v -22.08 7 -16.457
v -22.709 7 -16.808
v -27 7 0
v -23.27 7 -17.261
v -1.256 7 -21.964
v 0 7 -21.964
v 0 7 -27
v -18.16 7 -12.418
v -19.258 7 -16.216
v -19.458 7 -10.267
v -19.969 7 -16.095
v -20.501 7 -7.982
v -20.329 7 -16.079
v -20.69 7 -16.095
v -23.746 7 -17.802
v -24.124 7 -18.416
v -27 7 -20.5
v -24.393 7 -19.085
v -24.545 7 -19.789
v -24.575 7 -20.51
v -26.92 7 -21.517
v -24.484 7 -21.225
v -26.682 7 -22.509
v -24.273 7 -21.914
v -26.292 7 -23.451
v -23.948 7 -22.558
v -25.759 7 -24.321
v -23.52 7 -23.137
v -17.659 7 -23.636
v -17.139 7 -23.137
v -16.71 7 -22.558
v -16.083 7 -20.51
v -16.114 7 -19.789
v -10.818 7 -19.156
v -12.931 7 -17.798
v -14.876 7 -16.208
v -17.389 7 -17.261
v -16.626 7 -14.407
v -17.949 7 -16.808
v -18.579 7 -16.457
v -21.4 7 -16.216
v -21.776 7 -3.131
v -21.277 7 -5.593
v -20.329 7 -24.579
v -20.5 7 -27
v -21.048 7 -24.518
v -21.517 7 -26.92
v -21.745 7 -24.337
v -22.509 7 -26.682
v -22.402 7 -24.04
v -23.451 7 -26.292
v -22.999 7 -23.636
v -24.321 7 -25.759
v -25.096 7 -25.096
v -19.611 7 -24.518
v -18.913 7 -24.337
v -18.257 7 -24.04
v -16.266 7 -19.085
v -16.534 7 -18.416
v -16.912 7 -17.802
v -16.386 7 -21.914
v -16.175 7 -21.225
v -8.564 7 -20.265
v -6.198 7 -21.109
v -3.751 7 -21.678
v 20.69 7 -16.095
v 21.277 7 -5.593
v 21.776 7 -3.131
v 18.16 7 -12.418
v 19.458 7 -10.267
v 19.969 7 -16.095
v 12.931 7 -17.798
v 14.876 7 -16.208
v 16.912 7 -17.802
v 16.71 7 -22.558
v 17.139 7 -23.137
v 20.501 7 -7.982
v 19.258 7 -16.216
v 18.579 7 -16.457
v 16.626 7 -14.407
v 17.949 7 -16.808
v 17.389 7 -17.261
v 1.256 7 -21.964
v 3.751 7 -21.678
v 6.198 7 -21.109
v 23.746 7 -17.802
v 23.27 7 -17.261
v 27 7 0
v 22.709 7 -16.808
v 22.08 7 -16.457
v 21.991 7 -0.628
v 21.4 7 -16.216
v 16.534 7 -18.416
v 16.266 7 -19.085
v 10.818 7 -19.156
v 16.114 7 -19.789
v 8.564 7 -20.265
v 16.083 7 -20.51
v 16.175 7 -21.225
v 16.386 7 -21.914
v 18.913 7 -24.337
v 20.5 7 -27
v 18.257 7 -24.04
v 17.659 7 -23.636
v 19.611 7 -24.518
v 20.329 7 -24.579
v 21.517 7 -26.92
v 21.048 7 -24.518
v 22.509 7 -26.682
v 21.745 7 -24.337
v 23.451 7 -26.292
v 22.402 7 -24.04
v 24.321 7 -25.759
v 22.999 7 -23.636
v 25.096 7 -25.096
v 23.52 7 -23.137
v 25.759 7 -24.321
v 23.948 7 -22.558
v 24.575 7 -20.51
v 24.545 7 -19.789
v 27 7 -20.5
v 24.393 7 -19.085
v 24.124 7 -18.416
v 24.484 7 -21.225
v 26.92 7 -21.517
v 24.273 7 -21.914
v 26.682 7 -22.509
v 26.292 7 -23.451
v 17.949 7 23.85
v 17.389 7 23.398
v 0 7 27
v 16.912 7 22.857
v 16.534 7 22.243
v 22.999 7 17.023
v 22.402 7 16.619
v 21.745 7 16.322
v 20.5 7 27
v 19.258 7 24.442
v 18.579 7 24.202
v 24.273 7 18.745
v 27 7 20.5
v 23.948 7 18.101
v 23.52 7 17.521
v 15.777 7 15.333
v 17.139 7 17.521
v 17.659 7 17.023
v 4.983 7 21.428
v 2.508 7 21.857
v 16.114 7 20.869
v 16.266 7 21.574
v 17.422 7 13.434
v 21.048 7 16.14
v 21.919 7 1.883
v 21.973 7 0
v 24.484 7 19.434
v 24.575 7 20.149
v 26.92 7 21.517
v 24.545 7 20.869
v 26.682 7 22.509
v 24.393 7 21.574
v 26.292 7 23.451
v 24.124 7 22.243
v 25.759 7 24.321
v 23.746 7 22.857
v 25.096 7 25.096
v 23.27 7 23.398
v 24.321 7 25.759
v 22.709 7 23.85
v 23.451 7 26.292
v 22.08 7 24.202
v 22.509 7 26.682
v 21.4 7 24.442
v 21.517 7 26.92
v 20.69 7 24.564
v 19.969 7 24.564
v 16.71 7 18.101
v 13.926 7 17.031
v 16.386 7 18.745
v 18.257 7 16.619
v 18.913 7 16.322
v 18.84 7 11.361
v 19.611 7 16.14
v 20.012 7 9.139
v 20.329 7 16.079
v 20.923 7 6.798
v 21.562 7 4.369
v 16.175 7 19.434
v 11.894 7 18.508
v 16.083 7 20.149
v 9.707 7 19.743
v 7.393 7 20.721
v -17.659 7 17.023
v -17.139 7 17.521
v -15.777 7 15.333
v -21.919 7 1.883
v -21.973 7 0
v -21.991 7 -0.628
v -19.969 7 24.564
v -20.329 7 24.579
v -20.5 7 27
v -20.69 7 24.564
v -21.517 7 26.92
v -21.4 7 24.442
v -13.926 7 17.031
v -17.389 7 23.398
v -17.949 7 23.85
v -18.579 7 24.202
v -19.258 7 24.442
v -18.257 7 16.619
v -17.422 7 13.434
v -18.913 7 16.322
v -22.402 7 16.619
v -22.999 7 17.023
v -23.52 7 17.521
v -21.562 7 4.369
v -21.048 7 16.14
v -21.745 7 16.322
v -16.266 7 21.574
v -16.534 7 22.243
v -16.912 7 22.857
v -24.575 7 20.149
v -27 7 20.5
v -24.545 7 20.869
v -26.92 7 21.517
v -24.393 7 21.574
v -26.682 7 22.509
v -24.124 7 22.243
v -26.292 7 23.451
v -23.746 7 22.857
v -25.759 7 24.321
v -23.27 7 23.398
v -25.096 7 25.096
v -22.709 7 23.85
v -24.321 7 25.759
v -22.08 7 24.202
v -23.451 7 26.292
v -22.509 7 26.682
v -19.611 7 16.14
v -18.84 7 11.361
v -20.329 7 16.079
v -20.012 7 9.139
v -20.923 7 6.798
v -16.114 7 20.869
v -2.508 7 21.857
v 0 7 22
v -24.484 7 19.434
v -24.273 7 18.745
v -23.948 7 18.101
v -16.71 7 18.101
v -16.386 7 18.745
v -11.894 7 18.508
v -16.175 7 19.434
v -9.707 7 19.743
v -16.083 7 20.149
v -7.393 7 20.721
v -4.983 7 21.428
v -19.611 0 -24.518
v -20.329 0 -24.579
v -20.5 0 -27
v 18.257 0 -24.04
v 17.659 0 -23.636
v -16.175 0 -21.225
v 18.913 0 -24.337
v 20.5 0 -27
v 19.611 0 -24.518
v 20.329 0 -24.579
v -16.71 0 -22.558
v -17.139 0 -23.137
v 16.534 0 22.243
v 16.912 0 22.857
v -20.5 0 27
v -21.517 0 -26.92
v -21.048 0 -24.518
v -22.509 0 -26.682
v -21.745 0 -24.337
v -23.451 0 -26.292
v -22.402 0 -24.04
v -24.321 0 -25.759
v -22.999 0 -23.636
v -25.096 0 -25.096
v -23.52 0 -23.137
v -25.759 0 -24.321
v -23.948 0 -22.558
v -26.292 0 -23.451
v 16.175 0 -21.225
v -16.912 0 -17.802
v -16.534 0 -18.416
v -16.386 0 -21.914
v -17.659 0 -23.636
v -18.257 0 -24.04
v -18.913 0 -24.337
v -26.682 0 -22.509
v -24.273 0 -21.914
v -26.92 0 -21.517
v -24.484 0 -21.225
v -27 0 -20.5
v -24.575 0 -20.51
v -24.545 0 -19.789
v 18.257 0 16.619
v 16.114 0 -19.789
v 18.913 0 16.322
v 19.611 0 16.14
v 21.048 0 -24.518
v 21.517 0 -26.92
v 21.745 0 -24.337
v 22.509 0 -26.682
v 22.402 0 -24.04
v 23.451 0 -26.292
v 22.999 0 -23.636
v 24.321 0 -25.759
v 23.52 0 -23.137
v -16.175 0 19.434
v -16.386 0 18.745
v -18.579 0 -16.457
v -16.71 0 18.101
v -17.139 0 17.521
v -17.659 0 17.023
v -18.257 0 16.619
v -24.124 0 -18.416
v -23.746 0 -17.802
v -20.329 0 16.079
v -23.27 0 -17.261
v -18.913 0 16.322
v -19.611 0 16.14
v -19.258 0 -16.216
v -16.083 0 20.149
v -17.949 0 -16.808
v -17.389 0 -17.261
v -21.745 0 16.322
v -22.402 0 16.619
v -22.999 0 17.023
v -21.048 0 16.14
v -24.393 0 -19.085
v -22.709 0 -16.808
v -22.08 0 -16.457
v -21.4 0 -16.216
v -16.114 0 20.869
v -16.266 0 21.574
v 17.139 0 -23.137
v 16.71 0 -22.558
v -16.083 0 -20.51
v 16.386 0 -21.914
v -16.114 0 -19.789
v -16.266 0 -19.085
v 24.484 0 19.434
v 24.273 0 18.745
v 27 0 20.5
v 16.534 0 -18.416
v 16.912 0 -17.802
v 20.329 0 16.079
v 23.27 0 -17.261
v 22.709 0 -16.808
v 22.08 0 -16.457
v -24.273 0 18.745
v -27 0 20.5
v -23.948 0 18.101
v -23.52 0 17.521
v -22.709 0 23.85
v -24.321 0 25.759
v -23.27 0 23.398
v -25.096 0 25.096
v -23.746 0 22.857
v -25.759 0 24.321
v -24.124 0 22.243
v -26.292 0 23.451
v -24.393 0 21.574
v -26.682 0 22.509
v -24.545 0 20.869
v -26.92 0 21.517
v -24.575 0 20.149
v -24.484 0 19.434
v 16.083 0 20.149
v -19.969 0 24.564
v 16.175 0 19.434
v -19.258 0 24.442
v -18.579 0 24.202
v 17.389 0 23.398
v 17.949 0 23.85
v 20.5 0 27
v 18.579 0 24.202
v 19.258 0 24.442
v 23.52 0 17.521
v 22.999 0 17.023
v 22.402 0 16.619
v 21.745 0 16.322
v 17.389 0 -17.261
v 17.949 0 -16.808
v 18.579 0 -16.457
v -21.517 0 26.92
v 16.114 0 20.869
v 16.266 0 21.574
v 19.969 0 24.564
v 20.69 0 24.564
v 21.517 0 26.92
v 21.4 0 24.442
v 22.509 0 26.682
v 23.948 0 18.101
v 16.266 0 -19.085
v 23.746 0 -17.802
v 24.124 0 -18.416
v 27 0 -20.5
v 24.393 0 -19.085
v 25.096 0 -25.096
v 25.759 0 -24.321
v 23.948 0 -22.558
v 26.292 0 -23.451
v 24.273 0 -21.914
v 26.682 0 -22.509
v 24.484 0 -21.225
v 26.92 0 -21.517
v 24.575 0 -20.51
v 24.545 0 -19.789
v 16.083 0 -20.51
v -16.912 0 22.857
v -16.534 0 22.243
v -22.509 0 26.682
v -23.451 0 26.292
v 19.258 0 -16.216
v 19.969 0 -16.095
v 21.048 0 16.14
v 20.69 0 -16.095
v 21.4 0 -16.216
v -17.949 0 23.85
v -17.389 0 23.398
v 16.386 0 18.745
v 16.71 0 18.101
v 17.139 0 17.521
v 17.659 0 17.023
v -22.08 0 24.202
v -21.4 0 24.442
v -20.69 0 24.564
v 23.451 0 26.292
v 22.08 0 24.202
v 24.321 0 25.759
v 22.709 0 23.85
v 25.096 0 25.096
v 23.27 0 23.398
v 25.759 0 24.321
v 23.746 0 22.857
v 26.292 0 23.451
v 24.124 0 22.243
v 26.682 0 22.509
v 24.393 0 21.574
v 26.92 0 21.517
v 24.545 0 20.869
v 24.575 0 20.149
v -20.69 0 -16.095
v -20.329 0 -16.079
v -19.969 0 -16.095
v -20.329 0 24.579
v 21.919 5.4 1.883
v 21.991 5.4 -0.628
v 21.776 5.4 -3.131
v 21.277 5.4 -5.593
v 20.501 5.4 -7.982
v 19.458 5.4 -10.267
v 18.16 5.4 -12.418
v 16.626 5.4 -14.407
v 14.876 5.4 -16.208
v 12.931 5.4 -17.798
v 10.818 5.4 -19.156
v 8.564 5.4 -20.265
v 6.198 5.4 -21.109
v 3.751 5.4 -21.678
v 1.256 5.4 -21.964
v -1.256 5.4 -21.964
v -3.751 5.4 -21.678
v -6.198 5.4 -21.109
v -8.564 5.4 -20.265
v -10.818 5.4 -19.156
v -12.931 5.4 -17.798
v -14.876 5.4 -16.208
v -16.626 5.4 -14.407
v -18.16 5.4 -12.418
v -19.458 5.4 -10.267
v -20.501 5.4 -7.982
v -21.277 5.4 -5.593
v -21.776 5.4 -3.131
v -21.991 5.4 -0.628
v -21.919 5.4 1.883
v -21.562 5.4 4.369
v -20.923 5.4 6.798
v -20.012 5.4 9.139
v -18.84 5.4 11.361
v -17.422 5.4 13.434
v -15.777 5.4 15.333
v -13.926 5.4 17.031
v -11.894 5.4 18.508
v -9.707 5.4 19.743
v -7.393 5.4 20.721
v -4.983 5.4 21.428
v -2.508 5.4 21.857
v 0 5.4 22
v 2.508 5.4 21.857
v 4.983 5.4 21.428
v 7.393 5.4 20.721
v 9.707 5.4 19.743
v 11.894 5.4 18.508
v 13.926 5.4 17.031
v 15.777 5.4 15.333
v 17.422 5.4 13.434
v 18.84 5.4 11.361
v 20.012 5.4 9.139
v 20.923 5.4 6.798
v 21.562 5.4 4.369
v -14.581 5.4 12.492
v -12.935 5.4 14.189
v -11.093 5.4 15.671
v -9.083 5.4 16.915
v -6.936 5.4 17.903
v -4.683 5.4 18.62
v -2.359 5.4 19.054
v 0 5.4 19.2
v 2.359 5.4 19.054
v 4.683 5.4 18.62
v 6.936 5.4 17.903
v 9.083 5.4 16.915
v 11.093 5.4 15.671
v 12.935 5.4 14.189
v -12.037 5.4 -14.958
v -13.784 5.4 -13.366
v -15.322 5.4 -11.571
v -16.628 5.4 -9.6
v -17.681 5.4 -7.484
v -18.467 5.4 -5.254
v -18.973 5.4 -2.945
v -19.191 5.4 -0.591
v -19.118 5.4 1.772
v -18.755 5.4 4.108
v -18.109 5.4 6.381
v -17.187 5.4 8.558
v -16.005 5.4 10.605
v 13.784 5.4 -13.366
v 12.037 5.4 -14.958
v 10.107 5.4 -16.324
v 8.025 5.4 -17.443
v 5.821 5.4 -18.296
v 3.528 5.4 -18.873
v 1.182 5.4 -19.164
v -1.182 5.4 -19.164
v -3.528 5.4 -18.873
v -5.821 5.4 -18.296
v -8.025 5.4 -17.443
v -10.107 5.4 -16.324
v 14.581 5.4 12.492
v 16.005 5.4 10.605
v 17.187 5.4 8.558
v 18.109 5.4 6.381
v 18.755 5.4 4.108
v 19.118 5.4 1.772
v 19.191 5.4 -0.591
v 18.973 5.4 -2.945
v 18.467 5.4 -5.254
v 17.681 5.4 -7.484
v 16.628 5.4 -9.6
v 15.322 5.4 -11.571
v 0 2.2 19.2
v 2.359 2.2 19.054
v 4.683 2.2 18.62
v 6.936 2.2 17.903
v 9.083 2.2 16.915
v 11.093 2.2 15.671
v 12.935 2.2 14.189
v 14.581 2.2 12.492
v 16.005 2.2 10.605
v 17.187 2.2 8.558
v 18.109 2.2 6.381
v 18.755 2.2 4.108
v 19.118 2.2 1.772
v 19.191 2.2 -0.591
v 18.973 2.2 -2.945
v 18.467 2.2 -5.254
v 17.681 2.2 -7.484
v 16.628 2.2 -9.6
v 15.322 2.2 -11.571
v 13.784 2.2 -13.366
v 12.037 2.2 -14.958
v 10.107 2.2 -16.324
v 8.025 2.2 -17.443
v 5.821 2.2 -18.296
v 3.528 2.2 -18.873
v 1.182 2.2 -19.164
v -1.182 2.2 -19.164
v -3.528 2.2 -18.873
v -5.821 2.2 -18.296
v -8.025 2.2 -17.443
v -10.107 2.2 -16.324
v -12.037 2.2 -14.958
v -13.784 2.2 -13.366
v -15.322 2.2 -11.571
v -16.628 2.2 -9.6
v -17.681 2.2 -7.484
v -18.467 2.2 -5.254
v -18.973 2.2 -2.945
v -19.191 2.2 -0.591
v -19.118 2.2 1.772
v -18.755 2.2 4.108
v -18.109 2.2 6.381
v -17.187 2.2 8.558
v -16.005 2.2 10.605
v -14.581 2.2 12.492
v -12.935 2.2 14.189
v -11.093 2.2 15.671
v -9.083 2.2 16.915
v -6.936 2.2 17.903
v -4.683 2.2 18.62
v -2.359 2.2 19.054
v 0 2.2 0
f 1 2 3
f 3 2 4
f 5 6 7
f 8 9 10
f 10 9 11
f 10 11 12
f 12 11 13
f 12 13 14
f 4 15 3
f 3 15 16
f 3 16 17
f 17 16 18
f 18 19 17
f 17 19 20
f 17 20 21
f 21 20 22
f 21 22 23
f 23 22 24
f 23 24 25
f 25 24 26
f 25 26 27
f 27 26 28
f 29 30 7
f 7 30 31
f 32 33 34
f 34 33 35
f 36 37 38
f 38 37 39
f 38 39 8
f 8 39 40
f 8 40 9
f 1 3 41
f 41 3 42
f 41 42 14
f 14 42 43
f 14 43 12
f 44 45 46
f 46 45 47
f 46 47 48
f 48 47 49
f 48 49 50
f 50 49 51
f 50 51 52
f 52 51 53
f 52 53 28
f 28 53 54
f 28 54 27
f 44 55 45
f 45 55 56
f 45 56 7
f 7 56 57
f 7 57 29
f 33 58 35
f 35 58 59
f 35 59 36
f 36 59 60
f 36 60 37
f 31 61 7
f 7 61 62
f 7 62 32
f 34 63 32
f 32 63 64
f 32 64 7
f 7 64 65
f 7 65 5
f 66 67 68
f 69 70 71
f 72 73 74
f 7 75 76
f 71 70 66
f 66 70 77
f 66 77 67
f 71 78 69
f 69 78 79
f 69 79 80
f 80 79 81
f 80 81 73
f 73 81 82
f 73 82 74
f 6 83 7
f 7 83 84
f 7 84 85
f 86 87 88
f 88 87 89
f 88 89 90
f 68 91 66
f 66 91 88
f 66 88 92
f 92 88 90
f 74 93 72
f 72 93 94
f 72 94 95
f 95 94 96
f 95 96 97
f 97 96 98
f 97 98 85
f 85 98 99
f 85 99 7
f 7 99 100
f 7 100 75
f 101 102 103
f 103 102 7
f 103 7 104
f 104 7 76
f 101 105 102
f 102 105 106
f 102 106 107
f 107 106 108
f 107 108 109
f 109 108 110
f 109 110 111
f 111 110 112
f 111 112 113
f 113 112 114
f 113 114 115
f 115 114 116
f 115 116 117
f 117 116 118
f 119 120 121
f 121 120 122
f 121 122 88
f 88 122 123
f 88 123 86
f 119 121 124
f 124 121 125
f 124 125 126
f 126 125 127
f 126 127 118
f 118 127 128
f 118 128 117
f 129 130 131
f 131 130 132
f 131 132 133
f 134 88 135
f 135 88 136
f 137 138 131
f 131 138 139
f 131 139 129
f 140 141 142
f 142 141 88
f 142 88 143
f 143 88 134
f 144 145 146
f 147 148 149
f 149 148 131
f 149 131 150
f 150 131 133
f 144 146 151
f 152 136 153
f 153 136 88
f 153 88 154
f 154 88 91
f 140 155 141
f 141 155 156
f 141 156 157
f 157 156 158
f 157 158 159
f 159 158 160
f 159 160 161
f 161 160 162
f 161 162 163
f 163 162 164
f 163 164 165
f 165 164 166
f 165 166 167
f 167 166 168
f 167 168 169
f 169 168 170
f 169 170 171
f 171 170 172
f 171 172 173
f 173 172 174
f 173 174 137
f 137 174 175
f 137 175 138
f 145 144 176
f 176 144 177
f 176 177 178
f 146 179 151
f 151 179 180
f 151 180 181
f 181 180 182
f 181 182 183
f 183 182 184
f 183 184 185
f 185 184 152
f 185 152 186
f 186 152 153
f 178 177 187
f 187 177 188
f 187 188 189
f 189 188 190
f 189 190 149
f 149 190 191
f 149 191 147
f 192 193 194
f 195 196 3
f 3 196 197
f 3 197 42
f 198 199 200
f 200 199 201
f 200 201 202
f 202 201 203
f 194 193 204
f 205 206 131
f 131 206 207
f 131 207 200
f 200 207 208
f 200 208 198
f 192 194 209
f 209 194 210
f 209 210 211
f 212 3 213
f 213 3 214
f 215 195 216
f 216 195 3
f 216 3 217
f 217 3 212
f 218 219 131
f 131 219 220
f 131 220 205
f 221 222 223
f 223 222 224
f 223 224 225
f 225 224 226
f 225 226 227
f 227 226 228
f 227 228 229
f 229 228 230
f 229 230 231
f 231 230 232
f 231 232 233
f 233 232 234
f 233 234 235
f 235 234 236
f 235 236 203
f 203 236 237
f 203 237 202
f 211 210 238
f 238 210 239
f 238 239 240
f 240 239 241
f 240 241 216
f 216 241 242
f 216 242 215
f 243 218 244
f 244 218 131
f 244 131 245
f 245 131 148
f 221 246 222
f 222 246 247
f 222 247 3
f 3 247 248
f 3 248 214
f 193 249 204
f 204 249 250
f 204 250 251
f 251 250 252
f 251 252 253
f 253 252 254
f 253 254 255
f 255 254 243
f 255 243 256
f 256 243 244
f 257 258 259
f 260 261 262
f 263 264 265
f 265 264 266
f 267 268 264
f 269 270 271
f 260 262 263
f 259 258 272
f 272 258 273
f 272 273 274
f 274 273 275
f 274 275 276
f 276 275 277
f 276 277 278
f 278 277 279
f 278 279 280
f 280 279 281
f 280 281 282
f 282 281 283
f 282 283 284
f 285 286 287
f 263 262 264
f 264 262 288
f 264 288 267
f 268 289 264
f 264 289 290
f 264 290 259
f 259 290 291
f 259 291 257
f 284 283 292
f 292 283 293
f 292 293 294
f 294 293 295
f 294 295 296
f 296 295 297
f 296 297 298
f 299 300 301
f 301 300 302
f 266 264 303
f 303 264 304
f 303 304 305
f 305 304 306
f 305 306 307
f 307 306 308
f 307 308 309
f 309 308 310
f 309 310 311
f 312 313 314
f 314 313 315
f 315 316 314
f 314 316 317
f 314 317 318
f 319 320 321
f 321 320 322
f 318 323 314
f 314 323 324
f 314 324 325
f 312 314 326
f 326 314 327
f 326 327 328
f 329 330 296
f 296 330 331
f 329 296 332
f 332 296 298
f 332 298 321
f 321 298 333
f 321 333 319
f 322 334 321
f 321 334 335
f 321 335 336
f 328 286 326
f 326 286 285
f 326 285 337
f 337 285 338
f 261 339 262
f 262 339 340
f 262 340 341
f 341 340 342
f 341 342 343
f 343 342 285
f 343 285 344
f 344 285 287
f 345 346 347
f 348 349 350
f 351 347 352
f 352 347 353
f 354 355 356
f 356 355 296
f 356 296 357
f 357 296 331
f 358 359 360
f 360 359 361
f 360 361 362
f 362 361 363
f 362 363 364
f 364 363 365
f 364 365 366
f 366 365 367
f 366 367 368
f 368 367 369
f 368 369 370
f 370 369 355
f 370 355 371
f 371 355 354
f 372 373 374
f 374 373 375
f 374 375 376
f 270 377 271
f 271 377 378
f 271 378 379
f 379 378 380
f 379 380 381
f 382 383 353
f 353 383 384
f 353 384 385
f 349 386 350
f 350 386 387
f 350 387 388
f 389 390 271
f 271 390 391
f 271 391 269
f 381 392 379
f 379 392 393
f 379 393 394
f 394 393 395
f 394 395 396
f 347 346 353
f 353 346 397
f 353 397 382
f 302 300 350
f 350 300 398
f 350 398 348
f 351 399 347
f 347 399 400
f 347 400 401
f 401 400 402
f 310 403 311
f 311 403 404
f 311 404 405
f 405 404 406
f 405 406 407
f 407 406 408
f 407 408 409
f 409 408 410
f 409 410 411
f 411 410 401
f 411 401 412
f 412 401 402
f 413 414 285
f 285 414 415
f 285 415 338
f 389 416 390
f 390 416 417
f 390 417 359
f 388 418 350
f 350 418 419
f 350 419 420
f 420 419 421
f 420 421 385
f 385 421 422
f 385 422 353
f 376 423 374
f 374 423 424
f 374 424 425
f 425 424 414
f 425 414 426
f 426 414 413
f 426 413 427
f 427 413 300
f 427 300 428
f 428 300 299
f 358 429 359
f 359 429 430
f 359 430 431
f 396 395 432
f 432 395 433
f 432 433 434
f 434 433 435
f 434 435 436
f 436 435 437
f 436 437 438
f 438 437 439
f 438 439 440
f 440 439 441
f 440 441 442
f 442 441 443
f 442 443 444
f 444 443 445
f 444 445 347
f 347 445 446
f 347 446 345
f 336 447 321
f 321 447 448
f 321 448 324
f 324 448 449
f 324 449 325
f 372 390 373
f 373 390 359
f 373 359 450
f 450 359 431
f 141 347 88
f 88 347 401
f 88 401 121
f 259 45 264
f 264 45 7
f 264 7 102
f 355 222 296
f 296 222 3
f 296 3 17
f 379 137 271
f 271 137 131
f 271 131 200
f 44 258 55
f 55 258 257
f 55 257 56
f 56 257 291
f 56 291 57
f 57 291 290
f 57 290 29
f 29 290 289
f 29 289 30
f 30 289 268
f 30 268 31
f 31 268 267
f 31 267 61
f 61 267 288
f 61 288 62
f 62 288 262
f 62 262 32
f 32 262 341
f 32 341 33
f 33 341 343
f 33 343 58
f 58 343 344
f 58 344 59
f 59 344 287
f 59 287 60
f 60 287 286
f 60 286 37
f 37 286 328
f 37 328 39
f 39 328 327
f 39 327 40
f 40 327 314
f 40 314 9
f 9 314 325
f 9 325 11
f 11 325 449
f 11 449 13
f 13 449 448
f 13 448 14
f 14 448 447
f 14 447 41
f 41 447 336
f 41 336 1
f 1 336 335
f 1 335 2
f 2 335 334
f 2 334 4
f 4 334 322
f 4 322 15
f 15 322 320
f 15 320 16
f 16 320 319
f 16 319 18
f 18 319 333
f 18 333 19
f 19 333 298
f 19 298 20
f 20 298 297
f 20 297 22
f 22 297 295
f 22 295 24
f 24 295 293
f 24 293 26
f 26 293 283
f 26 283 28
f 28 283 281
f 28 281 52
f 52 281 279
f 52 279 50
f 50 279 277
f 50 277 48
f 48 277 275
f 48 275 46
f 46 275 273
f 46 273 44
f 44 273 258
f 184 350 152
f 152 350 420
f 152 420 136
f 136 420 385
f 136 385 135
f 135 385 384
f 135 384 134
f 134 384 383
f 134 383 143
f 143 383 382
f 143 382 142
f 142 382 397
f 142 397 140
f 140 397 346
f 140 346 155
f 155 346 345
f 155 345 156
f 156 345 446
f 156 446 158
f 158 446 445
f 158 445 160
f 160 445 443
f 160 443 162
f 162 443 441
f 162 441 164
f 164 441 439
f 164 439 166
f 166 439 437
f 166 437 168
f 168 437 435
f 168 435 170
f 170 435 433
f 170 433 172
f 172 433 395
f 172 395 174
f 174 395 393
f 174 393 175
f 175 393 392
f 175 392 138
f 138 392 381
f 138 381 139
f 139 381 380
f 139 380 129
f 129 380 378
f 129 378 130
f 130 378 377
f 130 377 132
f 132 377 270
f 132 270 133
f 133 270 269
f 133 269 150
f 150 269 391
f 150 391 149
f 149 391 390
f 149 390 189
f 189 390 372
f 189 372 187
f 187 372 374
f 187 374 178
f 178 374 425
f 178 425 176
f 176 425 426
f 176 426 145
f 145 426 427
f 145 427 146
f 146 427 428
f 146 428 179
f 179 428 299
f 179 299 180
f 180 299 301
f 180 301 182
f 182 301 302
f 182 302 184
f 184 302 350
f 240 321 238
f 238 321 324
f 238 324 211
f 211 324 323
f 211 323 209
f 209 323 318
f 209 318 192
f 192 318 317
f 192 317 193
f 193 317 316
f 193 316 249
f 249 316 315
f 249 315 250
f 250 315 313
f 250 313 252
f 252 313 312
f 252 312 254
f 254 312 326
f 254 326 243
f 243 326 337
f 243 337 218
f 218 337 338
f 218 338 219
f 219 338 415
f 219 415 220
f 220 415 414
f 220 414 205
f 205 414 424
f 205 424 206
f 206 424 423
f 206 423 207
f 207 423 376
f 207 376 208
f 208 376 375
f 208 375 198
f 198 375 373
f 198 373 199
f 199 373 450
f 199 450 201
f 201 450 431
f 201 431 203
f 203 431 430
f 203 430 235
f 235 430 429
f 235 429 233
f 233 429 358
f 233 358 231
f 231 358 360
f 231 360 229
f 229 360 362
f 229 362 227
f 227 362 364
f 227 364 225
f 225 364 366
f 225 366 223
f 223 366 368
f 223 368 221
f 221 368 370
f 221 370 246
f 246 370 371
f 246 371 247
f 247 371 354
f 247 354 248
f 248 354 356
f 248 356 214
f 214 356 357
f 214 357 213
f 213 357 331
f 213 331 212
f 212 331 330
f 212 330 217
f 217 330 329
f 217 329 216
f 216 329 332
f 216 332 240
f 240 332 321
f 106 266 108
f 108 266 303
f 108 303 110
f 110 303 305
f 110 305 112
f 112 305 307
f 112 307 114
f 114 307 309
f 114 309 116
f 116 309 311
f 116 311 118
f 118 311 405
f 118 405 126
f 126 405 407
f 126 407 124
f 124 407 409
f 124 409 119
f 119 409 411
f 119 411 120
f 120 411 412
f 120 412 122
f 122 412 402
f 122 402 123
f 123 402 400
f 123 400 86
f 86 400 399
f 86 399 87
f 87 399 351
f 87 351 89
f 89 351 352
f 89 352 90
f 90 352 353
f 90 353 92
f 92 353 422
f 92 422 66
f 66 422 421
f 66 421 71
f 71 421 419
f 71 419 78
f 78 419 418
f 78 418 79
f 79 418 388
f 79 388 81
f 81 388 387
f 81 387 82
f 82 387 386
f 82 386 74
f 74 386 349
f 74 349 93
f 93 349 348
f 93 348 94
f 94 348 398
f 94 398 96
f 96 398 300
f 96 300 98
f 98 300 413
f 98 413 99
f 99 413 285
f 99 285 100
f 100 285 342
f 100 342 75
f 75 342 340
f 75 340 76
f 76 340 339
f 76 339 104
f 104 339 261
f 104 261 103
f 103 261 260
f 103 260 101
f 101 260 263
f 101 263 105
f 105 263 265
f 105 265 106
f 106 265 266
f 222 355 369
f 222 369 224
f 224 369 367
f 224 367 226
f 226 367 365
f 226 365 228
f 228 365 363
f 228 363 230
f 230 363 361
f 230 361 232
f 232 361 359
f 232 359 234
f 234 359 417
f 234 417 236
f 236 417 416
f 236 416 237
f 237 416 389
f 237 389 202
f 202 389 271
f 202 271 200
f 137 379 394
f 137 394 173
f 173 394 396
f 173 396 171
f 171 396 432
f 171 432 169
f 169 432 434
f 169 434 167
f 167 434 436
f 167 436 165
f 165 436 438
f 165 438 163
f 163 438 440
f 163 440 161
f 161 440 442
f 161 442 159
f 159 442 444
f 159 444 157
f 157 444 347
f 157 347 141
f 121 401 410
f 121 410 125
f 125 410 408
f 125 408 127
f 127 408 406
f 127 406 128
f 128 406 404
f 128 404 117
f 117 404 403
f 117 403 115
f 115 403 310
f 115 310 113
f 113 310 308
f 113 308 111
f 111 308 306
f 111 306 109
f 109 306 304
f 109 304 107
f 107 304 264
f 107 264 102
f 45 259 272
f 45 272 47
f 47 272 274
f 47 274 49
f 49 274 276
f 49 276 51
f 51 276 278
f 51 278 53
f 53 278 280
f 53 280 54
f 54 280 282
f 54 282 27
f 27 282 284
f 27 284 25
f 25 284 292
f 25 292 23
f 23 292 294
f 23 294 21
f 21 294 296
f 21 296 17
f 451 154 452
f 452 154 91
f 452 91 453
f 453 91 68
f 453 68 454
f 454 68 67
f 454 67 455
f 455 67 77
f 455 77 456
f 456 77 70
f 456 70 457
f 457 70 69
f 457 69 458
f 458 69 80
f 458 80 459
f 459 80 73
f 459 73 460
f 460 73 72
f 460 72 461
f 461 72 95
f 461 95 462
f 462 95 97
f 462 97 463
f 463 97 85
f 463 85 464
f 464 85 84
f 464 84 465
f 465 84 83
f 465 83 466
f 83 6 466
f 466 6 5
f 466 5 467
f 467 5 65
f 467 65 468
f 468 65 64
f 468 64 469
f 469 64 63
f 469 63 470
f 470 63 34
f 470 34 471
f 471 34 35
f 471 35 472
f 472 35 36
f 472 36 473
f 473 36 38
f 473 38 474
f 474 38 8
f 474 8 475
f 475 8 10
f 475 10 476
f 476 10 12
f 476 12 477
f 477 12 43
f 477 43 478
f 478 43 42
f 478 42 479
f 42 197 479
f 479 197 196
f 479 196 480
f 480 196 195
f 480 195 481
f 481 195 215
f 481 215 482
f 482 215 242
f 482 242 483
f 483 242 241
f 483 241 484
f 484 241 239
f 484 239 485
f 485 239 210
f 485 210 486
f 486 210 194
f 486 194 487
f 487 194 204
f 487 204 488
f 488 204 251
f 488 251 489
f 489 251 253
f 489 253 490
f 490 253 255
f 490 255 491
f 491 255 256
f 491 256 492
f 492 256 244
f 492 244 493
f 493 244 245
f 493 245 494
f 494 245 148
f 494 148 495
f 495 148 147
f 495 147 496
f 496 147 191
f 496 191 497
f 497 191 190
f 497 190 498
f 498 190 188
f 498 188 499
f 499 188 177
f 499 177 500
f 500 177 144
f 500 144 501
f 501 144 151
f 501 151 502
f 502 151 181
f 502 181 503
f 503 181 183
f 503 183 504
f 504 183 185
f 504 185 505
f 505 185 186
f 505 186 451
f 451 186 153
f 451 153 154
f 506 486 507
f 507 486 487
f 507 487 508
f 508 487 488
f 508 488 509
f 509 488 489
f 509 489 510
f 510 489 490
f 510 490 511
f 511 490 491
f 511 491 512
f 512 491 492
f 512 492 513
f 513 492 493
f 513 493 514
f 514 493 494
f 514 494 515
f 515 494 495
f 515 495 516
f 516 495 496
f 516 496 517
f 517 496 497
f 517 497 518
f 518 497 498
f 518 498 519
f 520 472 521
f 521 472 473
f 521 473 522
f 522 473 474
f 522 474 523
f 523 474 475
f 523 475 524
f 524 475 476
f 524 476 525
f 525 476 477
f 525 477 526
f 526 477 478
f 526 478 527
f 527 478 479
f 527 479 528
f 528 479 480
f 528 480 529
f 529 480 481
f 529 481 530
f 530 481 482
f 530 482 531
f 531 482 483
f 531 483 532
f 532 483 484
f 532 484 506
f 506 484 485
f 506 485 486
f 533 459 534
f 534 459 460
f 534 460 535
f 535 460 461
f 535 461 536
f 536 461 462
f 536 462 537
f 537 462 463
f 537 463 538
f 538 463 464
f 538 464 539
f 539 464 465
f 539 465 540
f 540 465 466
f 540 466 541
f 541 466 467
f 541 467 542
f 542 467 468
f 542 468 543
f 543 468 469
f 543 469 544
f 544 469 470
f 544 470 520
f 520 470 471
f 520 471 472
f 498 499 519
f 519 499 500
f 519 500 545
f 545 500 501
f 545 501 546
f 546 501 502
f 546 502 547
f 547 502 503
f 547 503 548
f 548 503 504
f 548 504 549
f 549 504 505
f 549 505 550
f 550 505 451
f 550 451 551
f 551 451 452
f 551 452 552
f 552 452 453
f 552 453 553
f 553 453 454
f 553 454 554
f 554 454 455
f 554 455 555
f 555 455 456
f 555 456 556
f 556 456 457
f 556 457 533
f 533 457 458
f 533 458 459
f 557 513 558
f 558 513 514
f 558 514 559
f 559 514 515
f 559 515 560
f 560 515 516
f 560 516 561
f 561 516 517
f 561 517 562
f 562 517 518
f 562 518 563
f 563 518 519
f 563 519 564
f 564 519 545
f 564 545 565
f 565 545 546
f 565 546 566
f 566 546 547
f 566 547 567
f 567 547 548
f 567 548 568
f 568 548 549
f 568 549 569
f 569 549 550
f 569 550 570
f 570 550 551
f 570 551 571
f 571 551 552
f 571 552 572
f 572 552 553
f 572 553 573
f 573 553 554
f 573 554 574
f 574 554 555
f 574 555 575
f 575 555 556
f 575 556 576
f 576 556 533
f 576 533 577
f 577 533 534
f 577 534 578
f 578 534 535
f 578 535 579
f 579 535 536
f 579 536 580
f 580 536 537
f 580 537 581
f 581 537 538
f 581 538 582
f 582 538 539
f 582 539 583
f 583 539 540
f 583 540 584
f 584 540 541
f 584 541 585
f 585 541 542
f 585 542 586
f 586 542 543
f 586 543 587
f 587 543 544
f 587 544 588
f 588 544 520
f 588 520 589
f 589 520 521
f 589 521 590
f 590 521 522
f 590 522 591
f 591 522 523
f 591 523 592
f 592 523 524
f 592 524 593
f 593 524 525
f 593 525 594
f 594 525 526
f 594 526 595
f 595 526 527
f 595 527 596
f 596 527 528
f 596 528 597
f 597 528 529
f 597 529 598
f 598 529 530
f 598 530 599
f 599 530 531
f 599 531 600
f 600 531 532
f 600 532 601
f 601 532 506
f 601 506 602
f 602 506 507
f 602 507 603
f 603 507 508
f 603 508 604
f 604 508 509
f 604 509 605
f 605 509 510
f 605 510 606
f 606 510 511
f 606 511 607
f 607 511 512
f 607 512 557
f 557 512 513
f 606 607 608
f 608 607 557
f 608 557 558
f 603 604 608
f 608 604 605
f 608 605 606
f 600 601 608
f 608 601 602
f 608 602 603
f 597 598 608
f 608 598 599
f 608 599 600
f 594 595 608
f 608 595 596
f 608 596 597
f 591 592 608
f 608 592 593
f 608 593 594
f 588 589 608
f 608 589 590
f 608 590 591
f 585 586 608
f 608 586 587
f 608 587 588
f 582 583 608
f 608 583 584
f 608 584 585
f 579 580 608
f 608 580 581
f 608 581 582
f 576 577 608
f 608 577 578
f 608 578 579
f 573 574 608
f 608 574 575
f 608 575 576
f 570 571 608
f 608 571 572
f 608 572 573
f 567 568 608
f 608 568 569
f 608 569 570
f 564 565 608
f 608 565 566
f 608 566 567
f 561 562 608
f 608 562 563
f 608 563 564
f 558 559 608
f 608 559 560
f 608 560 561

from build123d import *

# Parameters (mm, degrees)
SKETCH1_W           = 54
SKETCH1_H           = 54
SKETCH1_R           = 4.25
BOSS_EXTRUDE1_DEPTH = 7
FILLET2_R           = 6.5
SKETCH2_R           = 22
CUT_EXTRUDE1_DEPTH  = 1.6
SKETCH3_R           = 19.2
CUT_EXTRUDE2_DEPTH  = 3.2


with BuildPart() as part:
    # Sketch1 → Boss-Extrude1 (new body)
    with BuildSketch(Plane(origin=(0, 0, 0), x_dir=(1, 0, 0), z_dir=(0, 1, 0))):
        Rectangle(SKETCH1_W, SKETCH1_H)
        with Locations(Location((-20.329319959, 20.329319959, 0), (0, 0, 270))):
            Circle(SKETCH1_R, mode=Mode.SUBTRACT)
        with Locations(Location((20.329319959, -20.329319959, 0), (0, 0, 90))):
            Circle(SKETCH1_R, mode=Mode.SUBTRACT)
        with Locations(Location((-20.329319959, -20.329319959, 0), (0, 0, 270))):
            Circle(SKETCH1_R, mode=Mode.SUBTRACT)
        with Locations(Location((20.329319959, 20.329319959, 0), (0, 0, 90))):
            Circle(SKETCH1_R, mode=Mode.SUBTRACT)
    extrude(amount=BOSS_EXTRUDE1_DEPTH)

    # Fillet2
    fillet2_edges = [part.edges().sort_by_distance(p)[0] for p in [
        (27, 3.5, 27),
        (-27, 3.5, 27),
        (-27, 3.5, -27),
        (27, 3.5, -27),
    ]]
    fillet(fillet2_edges, radius=FILLET2_R)

    # Sketch2 → Cut-Extrude1 (cut)
    with BuildSketch(Plane(origin=(0, 7, 0), x_dir=(1, 0, 0), z_dir=(0, 1, 0))):
        with Locations(Location((0, 0, 0), (0, 0, 270))):
            Circle(SKETCH2_R)
    extrude(amount=-CUT_EXTRUDE1_DEPTH, mode=Mode.SUBTRACT)

    # Sketch3 → Cut-Extrude2 (cut)
    with BuildSketch(Plane(origin=(0, 5.4, 0), x_dir=(1, 0, 0), z_dir=(0, 1, 0))):
        with Locations(Location((0, 0, 0), (0, 0, 270))):
            Circle(SKETCH3_R)
    extrude(amount=-CUT_EXTRUDE2_DEPTH, mode=Mode.SUBTRACT)


solid = part.part
